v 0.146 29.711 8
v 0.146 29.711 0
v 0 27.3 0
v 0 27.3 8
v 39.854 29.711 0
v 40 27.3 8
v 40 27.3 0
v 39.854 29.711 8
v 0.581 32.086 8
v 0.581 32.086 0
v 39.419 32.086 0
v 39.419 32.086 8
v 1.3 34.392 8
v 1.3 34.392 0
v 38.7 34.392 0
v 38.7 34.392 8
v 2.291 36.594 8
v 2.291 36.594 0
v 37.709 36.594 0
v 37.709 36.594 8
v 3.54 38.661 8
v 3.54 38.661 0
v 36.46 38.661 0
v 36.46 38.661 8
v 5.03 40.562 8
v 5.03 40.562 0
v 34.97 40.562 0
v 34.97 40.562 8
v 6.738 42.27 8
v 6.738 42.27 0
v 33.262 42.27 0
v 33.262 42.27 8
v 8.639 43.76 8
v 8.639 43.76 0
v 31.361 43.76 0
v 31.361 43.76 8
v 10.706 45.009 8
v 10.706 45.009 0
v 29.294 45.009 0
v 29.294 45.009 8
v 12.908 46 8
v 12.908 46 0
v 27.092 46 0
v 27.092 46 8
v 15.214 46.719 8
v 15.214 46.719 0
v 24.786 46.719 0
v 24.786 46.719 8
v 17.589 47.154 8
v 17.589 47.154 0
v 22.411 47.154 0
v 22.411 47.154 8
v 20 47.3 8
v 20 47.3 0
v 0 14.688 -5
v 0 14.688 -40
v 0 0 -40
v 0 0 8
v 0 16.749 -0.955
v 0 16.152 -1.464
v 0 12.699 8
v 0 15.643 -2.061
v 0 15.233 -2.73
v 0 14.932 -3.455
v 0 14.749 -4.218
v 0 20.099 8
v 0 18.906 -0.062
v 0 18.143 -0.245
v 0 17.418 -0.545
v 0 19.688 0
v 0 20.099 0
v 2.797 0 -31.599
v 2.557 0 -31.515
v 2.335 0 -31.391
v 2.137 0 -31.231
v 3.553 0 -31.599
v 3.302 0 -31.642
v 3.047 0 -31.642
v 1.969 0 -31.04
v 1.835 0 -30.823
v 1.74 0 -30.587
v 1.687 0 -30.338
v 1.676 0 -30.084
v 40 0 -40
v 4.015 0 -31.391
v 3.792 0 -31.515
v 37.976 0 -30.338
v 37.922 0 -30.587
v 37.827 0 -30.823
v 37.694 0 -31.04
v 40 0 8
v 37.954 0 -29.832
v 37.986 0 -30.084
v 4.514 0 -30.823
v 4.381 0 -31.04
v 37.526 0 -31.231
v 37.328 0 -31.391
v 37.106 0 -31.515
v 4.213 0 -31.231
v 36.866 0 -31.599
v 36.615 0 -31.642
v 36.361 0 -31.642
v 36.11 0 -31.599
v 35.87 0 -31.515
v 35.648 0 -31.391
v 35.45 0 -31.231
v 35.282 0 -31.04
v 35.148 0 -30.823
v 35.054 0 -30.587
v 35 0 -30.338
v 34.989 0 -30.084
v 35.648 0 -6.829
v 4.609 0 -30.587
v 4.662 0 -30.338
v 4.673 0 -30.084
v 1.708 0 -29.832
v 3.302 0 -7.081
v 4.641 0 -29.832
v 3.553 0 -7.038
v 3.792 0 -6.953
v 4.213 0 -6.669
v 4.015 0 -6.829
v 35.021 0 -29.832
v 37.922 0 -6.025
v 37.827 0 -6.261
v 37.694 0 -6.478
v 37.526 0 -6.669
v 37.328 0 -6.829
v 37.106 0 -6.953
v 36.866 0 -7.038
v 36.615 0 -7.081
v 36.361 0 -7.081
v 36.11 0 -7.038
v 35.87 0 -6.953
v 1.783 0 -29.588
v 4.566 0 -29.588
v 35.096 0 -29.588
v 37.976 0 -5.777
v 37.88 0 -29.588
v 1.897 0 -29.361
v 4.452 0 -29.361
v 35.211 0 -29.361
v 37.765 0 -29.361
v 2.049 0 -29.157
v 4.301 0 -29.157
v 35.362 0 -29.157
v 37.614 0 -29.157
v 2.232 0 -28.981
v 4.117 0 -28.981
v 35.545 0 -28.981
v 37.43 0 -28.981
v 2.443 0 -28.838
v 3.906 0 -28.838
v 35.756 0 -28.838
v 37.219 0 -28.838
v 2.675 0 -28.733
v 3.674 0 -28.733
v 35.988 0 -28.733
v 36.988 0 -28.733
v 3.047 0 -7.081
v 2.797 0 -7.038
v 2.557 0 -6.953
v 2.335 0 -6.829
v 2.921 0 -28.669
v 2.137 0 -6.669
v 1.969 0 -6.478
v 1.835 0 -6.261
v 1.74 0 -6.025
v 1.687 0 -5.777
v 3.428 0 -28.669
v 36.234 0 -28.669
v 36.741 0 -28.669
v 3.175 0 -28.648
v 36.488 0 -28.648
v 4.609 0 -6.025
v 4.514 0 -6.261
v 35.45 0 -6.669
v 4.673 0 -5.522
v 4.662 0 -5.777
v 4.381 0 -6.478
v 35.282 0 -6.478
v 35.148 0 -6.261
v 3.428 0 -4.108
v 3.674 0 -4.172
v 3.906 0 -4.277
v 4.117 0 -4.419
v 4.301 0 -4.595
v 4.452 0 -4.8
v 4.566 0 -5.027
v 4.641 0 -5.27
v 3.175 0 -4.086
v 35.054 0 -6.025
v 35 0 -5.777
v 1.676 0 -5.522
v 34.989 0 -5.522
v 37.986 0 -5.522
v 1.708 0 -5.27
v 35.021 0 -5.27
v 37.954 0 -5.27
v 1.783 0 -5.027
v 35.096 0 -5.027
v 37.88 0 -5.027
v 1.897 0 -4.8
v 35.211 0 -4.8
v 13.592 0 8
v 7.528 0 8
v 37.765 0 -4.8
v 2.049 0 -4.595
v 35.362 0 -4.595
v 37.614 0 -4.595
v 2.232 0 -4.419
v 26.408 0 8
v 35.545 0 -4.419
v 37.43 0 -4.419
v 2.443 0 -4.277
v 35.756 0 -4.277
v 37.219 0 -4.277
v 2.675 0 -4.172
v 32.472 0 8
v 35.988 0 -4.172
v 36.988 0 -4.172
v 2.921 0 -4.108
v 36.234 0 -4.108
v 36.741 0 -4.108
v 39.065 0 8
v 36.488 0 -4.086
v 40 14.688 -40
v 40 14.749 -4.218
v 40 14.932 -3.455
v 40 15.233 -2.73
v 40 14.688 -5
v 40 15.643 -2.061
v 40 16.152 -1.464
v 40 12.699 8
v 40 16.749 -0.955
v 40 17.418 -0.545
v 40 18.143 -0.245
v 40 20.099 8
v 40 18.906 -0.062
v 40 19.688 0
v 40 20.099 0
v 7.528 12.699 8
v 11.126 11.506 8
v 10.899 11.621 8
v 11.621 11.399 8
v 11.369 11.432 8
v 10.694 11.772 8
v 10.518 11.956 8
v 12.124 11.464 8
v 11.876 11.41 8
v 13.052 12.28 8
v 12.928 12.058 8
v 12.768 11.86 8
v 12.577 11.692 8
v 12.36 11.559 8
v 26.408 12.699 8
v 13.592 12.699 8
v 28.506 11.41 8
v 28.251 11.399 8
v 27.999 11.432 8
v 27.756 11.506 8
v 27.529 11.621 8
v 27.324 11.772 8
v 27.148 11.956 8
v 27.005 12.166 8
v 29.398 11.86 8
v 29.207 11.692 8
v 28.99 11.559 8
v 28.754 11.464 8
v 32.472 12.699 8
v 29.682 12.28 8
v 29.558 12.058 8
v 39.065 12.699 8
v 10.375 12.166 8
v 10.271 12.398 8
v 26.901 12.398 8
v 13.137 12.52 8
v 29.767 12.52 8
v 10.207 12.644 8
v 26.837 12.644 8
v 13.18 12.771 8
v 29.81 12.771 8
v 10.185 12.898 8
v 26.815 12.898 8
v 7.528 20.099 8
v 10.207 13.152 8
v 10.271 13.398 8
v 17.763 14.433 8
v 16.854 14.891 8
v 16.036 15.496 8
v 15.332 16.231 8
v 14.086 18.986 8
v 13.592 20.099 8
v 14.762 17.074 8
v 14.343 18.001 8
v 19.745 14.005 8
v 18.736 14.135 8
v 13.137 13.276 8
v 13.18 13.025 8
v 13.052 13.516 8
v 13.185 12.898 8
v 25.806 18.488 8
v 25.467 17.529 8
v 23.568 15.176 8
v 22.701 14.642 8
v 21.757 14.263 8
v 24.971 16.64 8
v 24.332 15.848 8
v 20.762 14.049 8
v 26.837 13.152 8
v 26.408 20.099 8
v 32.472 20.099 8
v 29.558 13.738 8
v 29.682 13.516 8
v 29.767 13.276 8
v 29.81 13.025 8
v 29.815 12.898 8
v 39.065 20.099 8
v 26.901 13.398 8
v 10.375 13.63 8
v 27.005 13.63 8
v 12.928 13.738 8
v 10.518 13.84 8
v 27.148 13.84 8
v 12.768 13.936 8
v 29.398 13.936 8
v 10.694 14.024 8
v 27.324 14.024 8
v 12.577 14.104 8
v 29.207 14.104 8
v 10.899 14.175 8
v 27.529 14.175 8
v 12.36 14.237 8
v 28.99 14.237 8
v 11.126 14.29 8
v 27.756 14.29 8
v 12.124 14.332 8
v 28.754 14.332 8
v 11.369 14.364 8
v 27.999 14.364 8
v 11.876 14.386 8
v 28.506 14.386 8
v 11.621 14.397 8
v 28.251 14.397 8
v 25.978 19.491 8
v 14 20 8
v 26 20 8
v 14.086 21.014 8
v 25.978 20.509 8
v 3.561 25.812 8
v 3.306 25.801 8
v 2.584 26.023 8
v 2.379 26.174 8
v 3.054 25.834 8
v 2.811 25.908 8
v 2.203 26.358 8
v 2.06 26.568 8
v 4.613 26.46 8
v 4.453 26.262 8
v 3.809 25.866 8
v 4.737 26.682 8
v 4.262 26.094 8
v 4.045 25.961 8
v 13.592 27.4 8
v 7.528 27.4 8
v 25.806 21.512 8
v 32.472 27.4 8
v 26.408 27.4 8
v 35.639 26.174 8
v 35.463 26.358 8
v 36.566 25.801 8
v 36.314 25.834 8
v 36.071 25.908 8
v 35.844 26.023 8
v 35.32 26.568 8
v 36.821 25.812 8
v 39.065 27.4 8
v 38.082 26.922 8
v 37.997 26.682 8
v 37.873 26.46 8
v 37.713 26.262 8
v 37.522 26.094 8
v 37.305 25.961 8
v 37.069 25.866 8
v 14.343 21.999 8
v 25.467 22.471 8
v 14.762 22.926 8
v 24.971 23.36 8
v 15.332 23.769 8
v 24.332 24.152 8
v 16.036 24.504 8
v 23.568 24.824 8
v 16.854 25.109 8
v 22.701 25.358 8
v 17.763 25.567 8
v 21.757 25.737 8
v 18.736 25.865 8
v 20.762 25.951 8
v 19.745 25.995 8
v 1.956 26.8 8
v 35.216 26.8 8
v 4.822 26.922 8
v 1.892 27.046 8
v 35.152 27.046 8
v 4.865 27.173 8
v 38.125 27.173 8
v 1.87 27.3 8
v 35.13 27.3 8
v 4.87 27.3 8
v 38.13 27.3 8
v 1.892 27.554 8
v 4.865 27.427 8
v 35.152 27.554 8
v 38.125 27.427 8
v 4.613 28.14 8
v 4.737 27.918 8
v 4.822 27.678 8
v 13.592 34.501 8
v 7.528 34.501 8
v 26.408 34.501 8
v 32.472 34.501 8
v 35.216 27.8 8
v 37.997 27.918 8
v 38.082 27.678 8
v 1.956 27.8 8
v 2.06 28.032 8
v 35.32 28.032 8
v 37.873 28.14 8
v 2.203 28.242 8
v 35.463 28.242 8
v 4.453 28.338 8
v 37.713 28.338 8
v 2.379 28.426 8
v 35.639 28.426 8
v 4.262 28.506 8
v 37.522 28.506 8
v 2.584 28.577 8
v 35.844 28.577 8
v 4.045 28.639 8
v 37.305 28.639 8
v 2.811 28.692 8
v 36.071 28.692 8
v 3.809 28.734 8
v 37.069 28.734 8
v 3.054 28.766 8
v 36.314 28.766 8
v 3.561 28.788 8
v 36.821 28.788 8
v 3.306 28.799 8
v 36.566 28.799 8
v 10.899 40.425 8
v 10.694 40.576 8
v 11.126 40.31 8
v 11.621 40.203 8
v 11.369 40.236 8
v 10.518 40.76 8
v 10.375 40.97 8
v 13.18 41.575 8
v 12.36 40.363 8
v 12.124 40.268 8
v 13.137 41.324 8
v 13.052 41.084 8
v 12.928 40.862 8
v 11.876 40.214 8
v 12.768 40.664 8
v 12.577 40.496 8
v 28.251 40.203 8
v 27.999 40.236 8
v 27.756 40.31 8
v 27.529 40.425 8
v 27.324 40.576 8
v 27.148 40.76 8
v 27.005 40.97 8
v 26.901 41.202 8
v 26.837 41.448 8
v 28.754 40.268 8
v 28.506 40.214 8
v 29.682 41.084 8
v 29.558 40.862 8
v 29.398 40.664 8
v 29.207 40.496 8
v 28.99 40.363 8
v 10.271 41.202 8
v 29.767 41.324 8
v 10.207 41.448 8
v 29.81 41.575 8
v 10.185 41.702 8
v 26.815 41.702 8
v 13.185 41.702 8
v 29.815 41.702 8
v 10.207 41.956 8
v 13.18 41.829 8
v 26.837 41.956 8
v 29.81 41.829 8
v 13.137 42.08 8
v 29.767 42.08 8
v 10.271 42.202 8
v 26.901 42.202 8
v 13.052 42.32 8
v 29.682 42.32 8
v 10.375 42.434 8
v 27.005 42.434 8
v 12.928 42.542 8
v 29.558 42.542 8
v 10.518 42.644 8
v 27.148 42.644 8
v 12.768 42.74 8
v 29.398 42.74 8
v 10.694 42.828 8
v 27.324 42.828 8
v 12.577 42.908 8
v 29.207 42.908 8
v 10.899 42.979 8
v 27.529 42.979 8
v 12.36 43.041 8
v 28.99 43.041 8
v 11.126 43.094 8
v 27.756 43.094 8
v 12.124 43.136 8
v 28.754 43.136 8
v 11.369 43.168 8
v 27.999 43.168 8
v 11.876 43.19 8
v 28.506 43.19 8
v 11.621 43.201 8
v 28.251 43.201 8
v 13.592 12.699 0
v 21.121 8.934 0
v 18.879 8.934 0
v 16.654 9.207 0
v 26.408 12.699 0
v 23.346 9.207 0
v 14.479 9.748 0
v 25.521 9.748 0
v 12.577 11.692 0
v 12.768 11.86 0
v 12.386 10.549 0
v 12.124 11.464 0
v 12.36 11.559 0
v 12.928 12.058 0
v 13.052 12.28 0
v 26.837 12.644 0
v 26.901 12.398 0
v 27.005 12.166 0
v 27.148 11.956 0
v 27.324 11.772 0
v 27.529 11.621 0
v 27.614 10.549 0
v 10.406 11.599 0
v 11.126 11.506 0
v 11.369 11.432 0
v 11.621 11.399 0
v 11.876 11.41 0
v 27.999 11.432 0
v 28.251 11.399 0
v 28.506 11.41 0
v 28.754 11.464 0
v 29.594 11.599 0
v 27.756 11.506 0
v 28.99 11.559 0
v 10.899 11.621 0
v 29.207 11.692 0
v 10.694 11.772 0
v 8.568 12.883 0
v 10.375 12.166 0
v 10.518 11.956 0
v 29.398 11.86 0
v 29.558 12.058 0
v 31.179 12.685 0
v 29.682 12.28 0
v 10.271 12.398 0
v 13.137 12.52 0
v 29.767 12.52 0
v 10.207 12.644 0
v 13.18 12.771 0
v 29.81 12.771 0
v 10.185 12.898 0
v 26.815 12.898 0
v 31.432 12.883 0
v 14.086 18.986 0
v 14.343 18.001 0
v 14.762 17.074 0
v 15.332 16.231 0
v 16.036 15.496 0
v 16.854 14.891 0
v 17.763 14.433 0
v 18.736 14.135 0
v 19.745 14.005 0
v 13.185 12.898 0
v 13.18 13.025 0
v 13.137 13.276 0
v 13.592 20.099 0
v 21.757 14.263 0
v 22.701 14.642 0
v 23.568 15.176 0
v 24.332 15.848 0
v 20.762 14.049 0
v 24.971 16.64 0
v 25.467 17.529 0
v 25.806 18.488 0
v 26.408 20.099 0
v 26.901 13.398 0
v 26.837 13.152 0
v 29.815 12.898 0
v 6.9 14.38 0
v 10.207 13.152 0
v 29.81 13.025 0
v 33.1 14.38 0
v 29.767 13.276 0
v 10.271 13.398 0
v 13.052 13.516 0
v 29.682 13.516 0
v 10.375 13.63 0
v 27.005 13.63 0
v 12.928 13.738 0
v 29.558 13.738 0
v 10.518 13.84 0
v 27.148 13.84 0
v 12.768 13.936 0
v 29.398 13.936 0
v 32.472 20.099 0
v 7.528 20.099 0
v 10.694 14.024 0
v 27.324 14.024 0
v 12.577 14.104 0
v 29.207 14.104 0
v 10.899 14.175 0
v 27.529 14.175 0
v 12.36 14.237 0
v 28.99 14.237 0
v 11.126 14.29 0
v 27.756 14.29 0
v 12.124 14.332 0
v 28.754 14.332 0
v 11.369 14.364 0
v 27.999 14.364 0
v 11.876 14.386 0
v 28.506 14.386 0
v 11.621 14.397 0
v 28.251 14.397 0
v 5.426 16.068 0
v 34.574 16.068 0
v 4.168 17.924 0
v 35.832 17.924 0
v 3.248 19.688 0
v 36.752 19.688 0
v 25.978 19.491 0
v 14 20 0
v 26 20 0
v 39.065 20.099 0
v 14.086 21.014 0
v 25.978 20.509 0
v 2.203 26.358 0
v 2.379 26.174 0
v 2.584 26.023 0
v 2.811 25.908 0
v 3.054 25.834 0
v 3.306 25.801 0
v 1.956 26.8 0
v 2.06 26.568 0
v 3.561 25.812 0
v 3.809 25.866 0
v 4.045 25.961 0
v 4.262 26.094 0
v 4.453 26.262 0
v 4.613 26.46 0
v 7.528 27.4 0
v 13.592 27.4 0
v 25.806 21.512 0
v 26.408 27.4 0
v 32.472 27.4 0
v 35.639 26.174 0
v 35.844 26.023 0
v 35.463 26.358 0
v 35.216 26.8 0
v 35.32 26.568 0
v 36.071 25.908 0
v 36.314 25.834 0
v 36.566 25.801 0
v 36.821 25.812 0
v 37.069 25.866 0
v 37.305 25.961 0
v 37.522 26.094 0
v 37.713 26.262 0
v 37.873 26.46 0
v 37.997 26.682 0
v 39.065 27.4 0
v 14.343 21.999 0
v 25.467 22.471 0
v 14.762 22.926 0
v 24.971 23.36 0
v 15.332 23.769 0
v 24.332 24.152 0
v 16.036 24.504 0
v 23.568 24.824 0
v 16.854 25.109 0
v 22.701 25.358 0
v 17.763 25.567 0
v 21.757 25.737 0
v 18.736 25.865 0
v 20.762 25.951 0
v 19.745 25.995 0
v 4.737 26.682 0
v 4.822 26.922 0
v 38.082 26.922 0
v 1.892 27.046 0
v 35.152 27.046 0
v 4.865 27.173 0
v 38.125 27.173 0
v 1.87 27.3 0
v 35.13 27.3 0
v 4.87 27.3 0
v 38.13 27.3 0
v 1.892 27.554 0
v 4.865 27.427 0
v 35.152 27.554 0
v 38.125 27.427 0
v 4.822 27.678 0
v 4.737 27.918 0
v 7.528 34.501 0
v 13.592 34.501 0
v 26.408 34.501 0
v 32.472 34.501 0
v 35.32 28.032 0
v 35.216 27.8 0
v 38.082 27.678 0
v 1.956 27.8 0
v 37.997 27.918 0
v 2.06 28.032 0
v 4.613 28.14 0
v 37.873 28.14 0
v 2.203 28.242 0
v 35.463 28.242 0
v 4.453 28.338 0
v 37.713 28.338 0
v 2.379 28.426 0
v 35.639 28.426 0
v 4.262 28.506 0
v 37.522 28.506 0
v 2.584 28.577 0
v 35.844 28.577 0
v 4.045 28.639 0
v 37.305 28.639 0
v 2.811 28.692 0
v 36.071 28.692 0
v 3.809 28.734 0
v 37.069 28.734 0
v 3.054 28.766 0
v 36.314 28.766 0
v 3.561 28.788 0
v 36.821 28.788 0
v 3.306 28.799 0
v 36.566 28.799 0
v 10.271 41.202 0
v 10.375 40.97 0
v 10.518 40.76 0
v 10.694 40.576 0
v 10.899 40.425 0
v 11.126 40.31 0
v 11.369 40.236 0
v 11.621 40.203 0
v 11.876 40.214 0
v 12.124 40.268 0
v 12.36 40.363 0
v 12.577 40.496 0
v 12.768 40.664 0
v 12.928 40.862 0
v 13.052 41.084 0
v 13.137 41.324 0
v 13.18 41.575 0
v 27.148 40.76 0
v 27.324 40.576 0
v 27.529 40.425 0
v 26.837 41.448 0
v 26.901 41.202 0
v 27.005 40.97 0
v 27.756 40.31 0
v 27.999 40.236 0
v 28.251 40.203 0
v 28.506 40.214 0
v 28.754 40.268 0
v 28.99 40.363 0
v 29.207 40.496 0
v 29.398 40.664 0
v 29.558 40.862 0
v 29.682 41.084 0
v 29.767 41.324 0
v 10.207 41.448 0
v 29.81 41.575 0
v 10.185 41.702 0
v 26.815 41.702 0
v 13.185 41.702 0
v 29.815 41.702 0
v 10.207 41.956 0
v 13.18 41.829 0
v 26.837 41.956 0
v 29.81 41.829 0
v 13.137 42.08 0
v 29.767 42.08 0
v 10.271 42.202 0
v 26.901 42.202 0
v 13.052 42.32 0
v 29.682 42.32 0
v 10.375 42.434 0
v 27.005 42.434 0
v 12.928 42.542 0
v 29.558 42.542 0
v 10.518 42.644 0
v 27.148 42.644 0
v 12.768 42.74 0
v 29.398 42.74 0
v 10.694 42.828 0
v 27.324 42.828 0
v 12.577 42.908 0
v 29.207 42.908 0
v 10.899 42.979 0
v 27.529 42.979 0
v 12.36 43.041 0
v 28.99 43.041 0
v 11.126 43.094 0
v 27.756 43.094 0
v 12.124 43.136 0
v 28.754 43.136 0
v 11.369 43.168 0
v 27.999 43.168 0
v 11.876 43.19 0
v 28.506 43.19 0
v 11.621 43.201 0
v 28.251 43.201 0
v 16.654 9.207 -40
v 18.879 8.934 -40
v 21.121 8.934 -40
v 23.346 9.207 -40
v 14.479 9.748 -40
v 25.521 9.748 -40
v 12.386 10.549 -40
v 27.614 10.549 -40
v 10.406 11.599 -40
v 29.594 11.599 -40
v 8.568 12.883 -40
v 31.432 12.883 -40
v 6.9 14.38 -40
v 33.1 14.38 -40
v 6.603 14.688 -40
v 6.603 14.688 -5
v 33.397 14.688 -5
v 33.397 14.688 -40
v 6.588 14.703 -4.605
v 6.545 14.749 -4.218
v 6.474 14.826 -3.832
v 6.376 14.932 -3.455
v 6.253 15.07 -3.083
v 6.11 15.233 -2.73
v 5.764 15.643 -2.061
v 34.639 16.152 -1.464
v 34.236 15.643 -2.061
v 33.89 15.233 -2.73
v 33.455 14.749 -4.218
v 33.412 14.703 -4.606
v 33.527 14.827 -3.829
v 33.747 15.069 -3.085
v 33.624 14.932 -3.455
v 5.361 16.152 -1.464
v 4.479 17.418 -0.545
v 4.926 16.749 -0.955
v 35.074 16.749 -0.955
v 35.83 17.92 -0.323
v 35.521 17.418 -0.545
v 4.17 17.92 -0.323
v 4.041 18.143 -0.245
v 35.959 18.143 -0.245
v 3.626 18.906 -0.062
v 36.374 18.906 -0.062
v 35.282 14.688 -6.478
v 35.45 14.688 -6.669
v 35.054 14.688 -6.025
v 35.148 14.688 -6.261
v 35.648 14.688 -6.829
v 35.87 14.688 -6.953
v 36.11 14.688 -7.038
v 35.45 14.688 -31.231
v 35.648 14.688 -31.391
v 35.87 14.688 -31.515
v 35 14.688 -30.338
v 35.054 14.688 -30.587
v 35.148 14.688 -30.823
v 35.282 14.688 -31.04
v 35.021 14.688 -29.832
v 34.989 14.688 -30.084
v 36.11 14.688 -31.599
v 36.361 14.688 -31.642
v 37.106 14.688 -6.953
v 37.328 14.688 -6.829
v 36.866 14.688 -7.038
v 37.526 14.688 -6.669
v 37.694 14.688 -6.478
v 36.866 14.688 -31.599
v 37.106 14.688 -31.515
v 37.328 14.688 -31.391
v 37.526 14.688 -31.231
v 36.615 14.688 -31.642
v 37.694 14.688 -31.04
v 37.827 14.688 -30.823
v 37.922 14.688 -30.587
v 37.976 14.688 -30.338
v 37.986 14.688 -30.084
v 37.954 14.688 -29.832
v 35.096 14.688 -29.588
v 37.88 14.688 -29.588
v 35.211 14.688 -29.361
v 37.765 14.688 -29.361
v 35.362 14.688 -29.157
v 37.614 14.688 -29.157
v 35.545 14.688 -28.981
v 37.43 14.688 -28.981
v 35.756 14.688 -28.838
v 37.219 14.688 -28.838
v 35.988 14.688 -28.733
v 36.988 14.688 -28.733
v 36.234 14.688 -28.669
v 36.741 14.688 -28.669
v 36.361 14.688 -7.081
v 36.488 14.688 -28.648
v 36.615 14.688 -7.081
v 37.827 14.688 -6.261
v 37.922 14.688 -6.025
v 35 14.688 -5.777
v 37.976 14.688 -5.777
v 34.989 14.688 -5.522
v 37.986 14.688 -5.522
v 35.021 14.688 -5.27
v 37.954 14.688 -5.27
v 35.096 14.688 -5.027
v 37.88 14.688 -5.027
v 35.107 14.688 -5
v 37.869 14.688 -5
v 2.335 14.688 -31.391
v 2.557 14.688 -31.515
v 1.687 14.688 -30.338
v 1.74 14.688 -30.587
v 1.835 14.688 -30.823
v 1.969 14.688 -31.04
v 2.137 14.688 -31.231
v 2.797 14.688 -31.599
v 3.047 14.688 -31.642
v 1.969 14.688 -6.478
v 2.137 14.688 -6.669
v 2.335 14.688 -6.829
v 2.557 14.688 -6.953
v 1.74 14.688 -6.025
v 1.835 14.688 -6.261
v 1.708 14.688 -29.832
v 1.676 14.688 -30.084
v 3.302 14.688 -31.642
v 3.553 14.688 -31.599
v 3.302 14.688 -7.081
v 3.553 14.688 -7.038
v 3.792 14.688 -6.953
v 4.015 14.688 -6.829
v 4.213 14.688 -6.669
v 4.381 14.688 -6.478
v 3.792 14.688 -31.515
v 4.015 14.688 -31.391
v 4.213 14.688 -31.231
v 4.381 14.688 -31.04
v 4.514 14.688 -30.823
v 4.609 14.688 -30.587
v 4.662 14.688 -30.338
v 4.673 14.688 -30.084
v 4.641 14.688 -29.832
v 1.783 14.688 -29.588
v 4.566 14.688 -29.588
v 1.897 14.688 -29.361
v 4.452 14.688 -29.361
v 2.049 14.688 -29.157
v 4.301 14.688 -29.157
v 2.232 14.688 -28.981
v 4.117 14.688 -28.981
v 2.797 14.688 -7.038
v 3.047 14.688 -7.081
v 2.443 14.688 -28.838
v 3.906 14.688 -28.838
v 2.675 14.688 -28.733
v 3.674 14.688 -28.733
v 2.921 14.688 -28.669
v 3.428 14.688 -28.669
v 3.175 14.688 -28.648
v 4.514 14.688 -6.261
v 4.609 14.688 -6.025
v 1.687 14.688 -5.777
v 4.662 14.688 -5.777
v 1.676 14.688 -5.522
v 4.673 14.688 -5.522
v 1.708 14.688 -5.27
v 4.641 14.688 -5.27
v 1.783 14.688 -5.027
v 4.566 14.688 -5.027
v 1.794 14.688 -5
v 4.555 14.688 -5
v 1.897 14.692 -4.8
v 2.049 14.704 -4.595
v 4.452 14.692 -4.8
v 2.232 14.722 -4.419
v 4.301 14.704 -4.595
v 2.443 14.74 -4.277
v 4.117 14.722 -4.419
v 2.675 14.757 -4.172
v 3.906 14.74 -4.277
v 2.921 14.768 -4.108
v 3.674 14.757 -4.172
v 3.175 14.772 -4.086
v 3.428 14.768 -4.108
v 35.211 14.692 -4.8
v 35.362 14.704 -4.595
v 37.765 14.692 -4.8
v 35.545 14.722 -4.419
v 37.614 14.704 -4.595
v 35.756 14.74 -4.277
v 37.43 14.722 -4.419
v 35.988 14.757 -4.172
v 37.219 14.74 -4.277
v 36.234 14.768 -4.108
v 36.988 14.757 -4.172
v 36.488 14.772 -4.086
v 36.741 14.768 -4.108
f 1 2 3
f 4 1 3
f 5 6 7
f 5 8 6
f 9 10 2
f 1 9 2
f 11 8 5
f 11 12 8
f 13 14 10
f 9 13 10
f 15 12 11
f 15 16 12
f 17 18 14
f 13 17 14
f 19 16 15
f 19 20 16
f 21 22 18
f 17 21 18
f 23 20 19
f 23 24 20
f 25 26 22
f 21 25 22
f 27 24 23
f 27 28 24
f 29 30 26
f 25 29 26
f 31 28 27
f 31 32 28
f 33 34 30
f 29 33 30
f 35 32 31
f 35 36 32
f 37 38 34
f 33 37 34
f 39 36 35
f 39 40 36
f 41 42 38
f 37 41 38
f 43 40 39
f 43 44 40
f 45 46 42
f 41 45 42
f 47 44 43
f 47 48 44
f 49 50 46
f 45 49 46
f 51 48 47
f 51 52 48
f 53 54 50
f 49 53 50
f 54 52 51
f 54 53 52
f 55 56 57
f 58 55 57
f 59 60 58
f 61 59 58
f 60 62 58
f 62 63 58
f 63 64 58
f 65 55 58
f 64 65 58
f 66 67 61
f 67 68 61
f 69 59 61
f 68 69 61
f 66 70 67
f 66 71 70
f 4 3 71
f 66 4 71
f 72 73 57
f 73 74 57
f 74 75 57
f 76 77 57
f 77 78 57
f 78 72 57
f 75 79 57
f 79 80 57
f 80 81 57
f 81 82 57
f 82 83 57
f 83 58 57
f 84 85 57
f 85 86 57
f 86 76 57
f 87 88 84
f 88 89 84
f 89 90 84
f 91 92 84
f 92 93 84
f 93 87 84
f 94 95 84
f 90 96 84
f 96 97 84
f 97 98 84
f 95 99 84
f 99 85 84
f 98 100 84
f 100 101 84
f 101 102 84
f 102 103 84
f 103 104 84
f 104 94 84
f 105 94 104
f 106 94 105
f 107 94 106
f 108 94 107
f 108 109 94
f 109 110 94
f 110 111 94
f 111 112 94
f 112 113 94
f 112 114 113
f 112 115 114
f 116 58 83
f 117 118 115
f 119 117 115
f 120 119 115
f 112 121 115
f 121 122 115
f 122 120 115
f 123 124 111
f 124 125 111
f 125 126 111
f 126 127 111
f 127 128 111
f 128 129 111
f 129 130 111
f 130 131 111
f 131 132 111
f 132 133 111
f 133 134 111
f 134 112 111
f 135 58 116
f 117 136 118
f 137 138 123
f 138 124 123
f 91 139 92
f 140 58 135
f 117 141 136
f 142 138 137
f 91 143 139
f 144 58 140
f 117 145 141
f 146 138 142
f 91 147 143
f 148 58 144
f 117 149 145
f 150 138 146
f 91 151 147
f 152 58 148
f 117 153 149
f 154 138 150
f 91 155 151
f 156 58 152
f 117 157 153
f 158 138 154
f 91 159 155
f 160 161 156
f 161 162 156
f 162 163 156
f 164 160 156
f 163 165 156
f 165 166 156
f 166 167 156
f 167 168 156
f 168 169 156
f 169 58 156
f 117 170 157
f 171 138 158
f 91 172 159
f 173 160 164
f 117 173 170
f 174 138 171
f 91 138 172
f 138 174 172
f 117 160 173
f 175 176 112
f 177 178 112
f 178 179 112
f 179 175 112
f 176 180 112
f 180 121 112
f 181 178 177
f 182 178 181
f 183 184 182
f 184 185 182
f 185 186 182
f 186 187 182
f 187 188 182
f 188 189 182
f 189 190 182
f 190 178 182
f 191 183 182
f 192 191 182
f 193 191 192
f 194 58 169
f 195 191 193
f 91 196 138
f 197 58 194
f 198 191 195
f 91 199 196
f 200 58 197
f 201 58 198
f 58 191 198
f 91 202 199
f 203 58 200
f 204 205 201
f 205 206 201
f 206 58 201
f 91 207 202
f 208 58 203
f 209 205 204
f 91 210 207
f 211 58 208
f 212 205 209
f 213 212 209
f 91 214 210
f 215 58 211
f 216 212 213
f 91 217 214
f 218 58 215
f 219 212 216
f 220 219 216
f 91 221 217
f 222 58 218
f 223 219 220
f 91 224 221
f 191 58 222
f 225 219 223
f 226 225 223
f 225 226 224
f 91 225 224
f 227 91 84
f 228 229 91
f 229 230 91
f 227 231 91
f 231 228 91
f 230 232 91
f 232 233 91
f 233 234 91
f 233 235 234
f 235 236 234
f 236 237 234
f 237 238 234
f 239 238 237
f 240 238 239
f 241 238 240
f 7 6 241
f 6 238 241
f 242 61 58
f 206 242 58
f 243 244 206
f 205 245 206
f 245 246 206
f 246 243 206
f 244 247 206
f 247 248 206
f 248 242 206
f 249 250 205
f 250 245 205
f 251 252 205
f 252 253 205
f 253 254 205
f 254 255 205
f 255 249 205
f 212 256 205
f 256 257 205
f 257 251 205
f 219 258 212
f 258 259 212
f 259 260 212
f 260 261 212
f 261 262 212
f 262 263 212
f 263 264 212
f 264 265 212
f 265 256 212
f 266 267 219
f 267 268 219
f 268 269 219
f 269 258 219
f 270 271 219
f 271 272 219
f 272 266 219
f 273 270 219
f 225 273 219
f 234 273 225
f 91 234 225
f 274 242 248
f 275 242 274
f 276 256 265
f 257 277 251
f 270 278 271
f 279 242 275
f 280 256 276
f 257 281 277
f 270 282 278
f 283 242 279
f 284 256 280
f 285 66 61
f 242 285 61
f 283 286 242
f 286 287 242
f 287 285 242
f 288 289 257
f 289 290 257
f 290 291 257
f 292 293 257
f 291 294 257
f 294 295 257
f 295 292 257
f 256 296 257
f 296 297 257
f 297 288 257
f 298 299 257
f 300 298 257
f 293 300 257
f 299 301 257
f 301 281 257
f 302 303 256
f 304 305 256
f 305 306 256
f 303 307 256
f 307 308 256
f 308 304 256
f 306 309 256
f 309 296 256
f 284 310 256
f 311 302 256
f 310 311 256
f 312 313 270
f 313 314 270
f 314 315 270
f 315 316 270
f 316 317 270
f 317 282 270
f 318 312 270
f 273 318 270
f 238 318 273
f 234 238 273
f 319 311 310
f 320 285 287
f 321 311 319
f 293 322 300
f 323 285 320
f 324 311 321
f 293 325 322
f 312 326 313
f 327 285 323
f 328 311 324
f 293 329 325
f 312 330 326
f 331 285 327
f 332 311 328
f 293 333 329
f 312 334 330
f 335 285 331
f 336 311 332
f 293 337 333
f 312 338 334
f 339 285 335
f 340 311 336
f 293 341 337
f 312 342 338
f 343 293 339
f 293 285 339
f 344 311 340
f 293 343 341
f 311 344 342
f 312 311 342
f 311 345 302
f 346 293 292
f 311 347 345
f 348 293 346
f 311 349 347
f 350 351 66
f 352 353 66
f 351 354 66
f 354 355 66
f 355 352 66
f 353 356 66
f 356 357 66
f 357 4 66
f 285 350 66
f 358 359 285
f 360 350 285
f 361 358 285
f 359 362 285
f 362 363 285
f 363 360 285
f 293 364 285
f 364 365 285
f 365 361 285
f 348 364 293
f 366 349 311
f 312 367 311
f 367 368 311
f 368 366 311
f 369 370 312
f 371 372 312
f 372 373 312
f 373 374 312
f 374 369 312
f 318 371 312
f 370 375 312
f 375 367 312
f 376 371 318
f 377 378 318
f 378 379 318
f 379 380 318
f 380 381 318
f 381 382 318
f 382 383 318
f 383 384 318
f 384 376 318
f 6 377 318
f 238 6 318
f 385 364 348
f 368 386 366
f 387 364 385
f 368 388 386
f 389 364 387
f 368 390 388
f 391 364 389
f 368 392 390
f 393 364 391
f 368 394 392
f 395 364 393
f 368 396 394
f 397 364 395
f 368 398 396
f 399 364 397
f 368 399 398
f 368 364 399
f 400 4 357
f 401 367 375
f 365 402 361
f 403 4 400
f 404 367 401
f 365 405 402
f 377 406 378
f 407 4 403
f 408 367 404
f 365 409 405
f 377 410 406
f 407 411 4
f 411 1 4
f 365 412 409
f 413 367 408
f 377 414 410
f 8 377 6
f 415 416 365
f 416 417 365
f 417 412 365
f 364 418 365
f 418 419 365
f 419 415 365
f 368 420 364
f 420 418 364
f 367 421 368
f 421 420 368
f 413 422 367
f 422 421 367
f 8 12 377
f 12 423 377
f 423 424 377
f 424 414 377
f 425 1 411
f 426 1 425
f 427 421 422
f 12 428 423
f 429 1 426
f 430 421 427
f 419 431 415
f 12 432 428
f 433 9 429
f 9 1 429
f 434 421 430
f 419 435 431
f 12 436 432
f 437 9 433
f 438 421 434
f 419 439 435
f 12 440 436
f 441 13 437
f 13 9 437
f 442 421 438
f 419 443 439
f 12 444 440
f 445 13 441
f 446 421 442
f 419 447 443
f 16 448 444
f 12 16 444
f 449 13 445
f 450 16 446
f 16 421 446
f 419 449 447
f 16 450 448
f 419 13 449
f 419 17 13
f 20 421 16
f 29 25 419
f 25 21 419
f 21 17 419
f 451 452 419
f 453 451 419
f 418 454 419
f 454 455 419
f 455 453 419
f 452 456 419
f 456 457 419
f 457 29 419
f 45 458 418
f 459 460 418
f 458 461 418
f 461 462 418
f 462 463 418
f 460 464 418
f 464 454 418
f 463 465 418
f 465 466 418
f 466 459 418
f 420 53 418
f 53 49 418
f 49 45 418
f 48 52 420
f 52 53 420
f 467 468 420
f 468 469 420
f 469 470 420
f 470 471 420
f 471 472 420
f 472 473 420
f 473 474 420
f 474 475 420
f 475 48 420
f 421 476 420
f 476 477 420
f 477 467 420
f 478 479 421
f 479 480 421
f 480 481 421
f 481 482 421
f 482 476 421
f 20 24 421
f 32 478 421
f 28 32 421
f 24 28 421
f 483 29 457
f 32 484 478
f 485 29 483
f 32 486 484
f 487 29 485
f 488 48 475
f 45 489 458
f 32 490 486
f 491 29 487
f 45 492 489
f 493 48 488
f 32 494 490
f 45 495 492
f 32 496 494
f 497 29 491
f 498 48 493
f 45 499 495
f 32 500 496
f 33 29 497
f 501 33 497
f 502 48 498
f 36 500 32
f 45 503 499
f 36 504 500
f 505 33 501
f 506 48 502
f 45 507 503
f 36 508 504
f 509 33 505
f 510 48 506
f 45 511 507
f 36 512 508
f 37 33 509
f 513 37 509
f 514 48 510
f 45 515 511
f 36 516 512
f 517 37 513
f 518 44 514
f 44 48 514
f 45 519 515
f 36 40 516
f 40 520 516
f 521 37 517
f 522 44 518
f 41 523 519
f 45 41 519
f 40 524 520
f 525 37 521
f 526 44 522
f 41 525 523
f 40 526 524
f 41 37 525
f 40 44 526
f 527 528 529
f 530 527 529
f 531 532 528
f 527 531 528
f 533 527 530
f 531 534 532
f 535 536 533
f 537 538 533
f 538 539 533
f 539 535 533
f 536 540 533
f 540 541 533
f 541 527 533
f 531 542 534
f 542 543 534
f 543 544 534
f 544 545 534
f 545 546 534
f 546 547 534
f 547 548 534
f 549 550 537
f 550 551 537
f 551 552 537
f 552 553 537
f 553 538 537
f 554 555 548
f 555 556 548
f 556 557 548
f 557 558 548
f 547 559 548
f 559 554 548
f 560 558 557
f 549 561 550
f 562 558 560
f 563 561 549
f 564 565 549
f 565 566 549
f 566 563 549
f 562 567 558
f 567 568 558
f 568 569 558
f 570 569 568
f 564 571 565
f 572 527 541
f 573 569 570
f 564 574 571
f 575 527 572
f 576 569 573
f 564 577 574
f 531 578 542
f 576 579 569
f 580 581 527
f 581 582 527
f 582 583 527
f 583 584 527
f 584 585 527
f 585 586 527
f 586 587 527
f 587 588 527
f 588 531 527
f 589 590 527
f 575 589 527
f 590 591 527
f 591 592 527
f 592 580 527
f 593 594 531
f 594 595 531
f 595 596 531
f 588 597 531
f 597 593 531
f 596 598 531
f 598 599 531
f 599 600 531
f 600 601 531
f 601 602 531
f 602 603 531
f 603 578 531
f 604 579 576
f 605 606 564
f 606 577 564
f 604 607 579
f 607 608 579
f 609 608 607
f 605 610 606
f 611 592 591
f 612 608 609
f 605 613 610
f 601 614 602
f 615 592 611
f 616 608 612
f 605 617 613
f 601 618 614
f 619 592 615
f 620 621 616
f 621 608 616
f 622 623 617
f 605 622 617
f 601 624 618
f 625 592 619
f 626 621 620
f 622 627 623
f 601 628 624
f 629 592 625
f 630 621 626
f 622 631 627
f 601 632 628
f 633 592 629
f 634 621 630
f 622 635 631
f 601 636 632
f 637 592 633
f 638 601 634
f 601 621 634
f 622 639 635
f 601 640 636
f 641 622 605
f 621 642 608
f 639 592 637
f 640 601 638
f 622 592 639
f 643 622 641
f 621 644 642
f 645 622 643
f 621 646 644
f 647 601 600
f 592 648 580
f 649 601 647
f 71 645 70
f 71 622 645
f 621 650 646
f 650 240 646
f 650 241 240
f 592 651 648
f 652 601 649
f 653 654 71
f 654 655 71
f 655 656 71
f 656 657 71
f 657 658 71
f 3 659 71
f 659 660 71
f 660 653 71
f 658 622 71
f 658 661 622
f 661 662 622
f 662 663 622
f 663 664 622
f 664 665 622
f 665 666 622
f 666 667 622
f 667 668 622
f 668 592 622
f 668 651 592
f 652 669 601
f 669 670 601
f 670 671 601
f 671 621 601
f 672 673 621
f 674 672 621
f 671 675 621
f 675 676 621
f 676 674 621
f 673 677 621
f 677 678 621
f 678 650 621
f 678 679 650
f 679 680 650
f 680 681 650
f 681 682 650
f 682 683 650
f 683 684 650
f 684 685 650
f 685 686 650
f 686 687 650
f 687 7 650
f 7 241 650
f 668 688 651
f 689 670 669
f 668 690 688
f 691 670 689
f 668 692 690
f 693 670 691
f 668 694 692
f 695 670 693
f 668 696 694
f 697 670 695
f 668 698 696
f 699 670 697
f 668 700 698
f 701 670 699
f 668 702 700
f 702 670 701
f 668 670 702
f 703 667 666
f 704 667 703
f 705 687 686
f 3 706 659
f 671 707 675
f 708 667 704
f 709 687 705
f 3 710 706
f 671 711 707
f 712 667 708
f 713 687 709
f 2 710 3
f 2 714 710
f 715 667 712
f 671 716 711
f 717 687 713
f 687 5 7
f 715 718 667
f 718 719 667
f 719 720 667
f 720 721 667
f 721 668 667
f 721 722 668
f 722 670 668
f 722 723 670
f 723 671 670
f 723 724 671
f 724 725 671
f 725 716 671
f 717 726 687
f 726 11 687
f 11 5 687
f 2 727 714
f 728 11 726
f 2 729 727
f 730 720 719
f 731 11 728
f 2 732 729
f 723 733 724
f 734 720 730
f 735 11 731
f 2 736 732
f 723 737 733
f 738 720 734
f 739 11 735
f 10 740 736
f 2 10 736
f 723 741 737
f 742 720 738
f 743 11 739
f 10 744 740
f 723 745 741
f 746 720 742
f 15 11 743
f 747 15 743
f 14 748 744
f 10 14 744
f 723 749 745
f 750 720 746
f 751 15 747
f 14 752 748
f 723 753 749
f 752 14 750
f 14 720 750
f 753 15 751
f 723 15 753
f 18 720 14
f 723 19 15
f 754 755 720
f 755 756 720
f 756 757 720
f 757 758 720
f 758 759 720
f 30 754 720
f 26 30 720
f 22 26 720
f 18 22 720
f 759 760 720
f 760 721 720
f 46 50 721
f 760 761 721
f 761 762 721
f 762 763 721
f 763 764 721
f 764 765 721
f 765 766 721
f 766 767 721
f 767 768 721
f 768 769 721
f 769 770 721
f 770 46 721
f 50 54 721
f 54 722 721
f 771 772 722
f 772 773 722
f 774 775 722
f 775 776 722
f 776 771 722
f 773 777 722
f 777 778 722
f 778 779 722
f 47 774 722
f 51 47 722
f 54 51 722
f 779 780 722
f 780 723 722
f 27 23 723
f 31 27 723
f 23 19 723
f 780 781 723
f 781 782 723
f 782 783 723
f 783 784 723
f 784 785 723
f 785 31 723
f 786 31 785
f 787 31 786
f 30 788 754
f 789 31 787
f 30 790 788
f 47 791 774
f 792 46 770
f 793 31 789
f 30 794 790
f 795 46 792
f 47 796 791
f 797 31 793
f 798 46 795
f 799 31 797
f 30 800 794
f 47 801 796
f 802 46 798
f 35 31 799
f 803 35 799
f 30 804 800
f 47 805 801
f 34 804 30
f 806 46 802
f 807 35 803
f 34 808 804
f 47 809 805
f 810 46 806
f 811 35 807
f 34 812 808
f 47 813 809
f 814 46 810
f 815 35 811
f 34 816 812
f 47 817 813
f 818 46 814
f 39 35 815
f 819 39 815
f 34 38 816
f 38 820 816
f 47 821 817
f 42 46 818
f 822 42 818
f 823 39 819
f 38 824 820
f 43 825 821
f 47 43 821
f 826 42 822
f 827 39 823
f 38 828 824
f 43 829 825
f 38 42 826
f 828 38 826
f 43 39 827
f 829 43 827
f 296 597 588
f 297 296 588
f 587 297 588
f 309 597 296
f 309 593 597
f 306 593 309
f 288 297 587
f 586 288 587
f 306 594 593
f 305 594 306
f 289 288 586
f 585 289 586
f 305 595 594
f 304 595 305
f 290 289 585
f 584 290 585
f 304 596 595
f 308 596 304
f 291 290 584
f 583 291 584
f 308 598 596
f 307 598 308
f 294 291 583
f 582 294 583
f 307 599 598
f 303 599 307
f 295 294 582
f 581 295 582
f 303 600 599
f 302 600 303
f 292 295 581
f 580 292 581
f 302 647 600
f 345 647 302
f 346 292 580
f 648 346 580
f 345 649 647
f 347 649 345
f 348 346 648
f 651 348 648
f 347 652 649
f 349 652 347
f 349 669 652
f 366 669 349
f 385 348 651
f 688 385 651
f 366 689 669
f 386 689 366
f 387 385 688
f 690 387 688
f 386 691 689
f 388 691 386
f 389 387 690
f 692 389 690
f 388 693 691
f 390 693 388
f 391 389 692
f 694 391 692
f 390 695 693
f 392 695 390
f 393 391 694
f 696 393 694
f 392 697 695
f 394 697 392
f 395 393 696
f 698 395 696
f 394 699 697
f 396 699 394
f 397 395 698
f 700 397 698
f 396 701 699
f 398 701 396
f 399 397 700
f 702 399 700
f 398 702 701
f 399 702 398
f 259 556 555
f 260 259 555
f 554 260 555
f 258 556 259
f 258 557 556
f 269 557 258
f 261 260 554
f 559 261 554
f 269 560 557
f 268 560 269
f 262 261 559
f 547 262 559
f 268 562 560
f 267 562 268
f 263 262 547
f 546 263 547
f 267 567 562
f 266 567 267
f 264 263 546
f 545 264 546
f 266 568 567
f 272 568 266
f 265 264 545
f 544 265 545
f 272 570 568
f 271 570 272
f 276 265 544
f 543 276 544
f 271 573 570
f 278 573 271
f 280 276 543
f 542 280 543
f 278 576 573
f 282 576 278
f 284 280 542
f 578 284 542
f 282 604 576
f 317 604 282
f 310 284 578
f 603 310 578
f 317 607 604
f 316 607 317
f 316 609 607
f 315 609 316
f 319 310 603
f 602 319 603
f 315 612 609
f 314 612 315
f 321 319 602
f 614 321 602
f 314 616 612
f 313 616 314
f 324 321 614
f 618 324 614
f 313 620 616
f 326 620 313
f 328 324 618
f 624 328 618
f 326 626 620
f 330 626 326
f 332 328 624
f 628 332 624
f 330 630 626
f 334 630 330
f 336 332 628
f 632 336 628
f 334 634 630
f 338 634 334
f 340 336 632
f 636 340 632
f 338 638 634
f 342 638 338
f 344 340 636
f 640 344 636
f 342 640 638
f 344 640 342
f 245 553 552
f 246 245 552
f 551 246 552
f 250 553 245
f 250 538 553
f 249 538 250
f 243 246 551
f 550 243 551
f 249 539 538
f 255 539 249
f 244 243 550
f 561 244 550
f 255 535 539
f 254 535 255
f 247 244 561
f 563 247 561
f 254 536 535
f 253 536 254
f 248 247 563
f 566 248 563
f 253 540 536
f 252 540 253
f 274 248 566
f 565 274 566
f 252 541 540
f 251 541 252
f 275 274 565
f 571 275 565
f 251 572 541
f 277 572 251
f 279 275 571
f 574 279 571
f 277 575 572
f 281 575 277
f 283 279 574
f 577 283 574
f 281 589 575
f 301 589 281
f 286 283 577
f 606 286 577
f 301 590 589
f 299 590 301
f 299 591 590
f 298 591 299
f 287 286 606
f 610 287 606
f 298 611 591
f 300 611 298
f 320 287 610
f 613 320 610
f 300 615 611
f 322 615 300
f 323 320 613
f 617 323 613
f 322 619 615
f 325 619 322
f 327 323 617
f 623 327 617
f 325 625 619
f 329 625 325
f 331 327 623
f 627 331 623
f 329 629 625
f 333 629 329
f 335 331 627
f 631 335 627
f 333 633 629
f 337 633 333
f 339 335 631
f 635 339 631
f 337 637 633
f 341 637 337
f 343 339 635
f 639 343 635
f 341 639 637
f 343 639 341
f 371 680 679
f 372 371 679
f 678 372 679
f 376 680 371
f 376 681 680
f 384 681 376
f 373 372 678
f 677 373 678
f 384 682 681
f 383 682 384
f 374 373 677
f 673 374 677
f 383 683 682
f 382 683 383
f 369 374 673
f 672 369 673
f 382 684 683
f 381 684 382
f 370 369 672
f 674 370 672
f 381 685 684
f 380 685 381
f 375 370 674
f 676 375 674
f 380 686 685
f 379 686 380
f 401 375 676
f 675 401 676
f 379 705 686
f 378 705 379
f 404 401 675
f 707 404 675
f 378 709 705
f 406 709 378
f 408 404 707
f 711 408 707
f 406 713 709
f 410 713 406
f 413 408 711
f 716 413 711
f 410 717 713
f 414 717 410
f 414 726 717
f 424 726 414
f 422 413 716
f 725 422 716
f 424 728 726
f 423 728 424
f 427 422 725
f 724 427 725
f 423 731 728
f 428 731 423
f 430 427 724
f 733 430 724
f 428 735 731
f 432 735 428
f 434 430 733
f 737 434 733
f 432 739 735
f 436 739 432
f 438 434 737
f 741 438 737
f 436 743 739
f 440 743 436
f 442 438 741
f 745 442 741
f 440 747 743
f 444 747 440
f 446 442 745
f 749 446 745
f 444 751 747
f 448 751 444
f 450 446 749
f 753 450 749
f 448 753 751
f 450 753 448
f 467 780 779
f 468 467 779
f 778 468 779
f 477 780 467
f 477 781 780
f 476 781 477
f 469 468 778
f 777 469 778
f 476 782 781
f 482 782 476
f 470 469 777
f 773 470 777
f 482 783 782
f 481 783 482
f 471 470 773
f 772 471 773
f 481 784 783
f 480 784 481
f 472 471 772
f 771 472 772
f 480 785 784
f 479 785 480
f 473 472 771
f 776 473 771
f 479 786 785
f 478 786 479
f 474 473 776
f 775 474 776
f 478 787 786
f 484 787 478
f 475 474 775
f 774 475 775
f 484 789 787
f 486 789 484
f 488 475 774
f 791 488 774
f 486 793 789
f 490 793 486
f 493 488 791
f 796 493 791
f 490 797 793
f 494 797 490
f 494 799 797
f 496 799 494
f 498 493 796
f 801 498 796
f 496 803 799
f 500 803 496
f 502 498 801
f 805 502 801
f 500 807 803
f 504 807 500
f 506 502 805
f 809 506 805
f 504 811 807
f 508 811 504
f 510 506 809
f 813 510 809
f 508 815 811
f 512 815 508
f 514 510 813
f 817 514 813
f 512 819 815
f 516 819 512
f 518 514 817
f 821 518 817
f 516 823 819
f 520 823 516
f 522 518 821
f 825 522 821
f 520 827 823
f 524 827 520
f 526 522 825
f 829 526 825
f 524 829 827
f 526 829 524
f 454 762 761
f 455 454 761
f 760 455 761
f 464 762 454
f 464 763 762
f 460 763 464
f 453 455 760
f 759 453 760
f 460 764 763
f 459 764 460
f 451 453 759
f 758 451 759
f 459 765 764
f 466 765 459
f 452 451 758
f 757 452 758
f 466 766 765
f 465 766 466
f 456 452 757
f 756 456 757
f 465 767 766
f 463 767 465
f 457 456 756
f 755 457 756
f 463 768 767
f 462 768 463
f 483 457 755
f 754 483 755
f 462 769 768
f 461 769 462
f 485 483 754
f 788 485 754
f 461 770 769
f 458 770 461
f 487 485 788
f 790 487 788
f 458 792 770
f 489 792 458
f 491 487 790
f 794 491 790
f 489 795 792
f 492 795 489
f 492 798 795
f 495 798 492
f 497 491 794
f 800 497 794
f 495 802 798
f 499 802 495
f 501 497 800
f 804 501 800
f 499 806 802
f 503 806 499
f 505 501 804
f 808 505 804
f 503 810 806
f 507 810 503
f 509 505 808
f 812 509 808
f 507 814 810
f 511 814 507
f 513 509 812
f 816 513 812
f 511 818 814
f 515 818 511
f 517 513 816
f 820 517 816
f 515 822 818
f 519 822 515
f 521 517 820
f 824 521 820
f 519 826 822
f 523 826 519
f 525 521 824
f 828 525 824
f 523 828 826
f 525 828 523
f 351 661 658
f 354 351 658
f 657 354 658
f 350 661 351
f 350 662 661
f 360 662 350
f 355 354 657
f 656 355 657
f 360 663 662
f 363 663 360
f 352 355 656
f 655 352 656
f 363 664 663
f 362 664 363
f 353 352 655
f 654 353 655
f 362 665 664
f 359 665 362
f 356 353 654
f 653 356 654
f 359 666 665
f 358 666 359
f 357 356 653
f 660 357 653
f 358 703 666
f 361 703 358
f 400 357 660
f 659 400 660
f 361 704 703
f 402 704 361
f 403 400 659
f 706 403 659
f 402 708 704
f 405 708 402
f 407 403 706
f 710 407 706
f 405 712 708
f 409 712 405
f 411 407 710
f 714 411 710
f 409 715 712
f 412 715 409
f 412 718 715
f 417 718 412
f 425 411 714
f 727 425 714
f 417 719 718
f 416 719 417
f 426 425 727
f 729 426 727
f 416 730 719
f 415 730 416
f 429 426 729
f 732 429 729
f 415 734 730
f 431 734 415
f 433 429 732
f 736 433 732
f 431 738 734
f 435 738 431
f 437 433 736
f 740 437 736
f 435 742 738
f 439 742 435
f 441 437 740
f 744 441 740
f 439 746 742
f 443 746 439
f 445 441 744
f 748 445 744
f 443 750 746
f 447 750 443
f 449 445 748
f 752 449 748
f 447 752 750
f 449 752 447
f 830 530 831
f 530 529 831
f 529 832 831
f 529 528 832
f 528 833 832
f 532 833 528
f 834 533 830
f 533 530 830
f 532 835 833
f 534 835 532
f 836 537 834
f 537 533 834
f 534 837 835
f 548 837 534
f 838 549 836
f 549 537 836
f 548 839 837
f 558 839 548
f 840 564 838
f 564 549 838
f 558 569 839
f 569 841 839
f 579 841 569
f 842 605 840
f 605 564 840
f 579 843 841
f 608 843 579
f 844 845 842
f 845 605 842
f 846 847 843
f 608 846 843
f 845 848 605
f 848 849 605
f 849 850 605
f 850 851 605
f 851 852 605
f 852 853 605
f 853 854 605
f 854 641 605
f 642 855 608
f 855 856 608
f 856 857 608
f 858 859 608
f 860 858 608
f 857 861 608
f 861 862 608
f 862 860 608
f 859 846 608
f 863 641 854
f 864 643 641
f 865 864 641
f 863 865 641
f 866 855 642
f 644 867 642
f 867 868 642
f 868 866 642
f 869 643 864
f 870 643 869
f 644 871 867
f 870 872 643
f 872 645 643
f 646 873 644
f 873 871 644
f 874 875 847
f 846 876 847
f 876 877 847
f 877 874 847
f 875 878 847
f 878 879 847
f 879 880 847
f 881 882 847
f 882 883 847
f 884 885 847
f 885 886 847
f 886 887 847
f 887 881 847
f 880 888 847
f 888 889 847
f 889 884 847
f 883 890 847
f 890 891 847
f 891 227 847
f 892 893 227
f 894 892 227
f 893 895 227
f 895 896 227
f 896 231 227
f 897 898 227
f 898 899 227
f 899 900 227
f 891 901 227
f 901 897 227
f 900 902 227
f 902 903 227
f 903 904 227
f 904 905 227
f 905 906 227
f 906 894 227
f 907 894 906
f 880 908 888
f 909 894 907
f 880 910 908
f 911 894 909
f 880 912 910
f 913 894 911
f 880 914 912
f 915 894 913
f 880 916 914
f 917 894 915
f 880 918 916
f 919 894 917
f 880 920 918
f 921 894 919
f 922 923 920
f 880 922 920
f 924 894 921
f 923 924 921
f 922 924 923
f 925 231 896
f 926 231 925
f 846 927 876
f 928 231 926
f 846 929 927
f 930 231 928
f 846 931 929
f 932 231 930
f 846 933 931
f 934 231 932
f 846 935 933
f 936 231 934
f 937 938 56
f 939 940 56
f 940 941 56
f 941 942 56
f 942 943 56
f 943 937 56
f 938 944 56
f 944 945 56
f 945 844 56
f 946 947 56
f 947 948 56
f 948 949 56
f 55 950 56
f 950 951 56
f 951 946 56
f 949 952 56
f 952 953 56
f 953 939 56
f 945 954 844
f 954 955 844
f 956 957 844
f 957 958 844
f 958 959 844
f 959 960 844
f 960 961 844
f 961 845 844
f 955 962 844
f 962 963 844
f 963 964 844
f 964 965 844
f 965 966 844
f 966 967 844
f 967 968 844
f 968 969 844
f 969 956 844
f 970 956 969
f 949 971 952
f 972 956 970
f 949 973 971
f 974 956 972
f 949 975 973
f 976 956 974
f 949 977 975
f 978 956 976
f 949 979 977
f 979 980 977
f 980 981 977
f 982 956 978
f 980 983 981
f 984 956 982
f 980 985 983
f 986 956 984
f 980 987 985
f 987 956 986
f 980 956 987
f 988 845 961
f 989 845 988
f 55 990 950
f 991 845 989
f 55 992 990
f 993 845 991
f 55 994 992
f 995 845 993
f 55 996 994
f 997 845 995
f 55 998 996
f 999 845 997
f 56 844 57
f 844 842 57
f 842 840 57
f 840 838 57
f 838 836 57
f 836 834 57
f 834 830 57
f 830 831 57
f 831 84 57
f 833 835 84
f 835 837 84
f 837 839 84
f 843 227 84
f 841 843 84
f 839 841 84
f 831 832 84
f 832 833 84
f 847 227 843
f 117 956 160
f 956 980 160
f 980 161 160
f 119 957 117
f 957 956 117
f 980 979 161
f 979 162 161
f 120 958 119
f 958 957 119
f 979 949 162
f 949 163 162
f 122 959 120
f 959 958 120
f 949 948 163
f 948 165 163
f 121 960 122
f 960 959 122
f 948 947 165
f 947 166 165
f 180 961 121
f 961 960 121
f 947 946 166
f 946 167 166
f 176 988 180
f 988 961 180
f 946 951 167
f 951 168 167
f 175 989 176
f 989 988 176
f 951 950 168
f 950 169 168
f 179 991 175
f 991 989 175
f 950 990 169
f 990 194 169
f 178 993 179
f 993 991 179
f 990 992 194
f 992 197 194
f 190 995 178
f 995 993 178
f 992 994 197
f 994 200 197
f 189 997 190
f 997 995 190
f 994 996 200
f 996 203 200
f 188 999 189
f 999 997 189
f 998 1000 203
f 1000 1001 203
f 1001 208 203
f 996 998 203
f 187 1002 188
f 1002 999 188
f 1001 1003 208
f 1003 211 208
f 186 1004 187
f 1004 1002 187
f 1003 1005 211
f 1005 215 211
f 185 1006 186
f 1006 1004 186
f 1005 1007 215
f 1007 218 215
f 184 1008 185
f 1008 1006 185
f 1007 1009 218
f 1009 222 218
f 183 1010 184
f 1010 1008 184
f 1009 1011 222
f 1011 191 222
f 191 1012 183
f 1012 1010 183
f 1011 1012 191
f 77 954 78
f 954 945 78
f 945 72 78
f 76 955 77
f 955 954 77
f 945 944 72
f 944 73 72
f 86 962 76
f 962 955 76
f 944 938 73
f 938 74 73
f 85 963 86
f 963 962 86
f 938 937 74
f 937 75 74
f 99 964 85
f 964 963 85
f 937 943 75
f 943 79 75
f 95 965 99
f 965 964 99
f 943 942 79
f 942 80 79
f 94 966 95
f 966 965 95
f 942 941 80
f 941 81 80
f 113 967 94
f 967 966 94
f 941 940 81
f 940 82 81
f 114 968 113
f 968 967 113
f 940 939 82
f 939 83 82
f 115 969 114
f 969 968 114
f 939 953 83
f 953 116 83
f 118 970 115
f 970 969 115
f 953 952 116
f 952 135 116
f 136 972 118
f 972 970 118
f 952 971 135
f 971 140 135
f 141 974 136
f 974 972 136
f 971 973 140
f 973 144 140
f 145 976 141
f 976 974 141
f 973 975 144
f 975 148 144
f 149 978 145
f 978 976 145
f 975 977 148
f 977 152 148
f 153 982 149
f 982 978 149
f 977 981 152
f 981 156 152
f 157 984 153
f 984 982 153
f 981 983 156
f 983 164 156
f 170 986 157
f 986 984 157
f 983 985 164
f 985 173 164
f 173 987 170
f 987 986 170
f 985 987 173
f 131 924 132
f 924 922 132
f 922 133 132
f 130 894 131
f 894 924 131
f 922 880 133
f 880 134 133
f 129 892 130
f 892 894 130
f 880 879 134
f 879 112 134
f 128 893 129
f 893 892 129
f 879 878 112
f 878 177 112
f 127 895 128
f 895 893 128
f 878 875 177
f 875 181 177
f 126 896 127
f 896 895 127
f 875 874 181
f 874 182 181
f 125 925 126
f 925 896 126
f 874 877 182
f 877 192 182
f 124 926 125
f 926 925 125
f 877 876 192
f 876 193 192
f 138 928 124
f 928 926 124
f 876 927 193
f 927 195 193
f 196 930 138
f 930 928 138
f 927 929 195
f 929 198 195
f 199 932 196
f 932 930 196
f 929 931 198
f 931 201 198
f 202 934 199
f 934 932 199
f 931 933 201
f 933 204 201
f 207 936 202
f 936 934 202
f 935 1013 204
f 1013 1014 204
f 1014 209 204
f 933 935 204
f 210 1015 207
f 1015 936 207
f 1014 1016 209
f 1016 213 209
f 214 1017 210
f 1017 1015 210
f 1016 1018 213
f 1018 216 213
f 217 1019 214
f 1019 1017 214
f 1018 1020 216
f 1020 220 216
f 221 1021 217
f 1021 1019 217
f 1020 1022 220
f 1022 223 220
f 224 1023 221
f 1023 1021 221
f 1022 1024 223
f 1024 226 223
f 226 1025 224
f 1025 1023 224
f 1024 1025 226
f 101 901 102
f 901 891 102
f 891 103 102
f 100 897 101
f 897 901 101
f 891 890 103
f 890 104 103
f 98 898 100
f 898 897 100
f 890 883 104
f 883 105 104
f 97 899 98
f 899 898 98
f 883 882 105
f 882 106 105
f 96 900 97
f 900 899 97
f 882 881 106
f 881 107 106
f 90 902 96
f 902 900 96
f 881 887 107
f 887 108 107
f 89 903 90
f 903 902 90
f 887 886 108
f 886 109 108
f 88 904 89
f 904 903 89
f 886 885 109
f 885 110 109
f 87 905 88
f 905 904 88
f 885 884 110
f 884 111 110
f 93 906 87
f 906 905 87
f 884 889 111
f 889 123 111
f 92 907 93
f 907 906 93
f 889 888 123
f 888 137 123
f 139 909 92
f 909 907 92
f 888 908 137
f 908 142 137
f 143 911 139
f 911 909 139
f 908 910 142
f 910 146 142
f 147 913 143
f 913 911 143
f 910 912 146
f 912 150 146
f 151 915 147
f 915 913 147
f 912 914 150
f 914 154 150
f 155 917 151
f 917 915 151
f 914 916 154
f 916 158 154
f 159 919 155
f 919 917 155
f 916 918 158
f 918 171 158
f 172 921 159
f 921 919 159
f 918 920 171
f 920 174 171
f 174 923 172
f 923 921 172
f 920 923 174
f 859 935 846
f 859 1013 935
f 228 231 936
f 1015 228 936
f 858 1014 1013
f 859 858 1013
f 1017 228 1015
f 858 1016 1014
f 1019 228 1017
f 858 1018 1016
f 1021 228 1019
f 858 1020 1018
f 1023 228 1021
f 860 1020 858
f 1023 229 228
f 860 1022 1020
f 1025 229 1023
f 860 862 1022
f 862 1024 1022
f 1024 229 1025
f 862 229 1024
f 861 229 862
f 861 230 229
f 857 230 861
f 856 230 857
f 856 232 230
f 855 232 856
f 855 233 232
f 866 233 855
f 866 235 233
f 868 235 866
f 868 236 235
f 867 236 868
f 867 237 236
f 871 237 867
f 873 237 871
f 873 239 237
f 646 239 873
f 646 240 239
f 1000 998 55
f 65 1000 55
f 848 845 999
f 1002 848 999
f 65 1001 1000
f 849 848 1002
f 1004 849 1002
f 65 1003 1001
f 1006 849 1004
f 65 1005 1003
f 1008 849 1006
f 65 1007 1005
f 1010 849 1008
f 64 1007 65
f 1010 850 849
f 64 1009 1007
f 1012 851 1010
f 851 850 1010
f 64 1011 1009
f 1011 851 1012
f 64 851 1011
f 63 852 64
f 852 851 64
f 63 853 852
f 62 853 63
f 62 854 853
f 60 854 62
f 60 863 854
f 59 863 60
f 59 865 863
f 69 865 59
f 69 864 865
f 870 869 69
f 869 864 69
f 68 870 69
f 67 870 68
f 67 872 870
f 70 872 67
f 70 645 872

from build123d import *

# Parameters (mm, degrees)
EXTRUDE_2_DEPTH         = 8
SKETCH_1_11_OUTSIDE_W   = 54.492
SKETCH_1_11_OUTSIDE_H   = 61.792
SKETCH_1_11_OUTSIDE_R   = 6
SKETCH_1_11_OUTSIDE_R_2 = 1.5
CUT_EXTRUDE_2_DEPTH     = 63.460307396
EXTRUDE_4_DEPTH         = 40
SKETCH_9_R              = 1.5
CUT_EXTRUDE_3_DEPTH     = 66.295934524
FILLET_1_R              = 5
FILLET_2_R              = 5


with BuildPart() as part:
    # Эскиз1 → Бобышка-Вытянуть2 (new body)
    with BuildSketch(Plane.XY):
        with BuildLine():
            Line((0, 0), (40, 0))
            Line((40, 0), (40, 27.3))
            ThreePointArc((40, 27.3), (20, 47.3), (0, 27.3))
            Line((0, 27.3), (0, 0))
        make_face()
    extrude(amount=EXTRUDE_2_DEPTH)

    # Эскиз1<11> outside → Вырез-Вытянуть2 (cut, through all)
    # profile 1 of 8: a face of its own
    with BuildSketch(Plane.XY):
        with Locations((20, 23.65)):
            Rectangle(SKETCH_1_11_OUTSIDE_W, SKETCH_1_11_OUTSIDE_H)
        with BuildLine():
            Line((0, 0), (40, 0))
            Line((40, 0), (40, 27.3))
            ThreePointArc((40, 27.3), (20, 47.3), (0, 27.3))
            Line((0, 27.3), (0, 0))
        make_face(mode=Mode.SUBTRACT)
    # profile 2 of 8: a face of its own
    with BuildSketch(Plane.XY):
        with Locations((20, 20)):
            Circle(SKETCH_1_11_OUTSIDE_R)
    # profile 3 of 8: a face of its own
    with BuildSketch(Plane.XY):
        with Locations((3.37, 27.3)):
            Circle(SKETCH_1_11_OUTSIDE_R_2)
    # profile 4 of 8: a face of its own
    with BuildSketch(Plane.XY):
        with Locations((11.685, 41.702002465)):
            Circle(SKETCH_1_11_OUTSIDE_R_2)
    # profile 5 of 8: a face of its own
    with BuildSketch(Plane.XY):
        with Locations((28.315, 41.702002465)):
            Circle(SKETCH_1_11_OUTSIDE_R_2)
    # profile 6 of 8: a face of its own
    with BuildSketch(Plane.XY):
        with Locations((36.63, 27.3)):
            Circle(SKETCH_1_11_OUTSIDE_R_2)
    # profile 7 of 8: a face of its own
    with BuildSketch(Plane.XY):
        with Locations((28.315, 12.897997535)):
            Circle(SKETCH_1_11_OUTSIDE_R_2)
    # profile 8 of 8: a face of its own
    with BuildSketch(Plane.XY):
        with Locations((11.685, 12.897997535)):
            Circle(SKETCH_1_11_OUTSIDE_R_2)
    extrude(amount=CUT_EXTRUDE_2_DEPTH, mode=Mode.SUBTRACT)

    # Эскиз8 → Бобышка-Вытянуть4 (add)
    with BuildSketch(Plane(origin=(0, 0, 0), x_dir=(-1, 0, 0), z_dir=(0, 0, -1))):
        with BuildLine():
            Line((-33.397427614, 14.687746699), (-40, 14.687746699))
            Line((-40, 14.687746699), (-40, 0))
            Line((-40, 0), (0, 0))
            Line((0, 0), (0, 14.687746699))
            Line((0, 14.687746699), (-6.602572386, 14.687746699))
            ThreePointArc((-6.602572386, 14.687746699), (-20, 8.9), (-33.397427614, 14.687746699))
        make_face()
    extrude(amount=EXTRUDE_4_DEPTH)

    # Эскиз9 → Вырез-Вытянуть3 (cut, through all)
    with BuildSketch(Plane(origin=(0, 14.687746699, 0), x_dir=(1, 0, 0), z_dir=(0, 1, 0))):
        with Locations(Location((36.487813402, 5.586160045, 0), (0, 0, 270))):
            Circle(SKETCH_9_R)
        with Locations(Location((3.174622012, 5.586160045, 0), (0, 0, 270))):
            Circle(SKETCH_9_R)
        with Locations(Location((3.174622012, 30.147789022, 0), (0, 0, 270))):
            Circle(SKETCH_9_R)
        with Locations(Location((36.487813402, 30.147789022, 0), (0, 0, 270))):
            Circle(SKETCH_9_R)
    extrude(amount=-CUT_EXTRUDE_3_DEPTH, mode=Mode.SUBTRACT)

    # Скругление1
    # the kernel refuses this fillet: 5 mm, written as the material it adds along each edge
    with BuildSketch(Plane(origin=(20.897427614, 14.687746699, 0), x_dir=(0, 1, 0), z_dir=(1, 0, 0))) as fillet_1_piece_1_section:
        with BuildLine():
            CenterArc((FILLET_1_R, -FILLET_1_R), FILLET_1_R, 90, 90)
            Line((0, -FILLET_1_R), (0, 0))
            Line((0, 0), (FILLET_1_R, 0))
        make_face()
    fillet_1_piece_1 = extrude(amount=19.102572386, mode=Mode.PRIVATE)
    fillet_1_piece_1 = fillet_1_piece_1 - Plane(origin=(20, 27.3, -1.204390543), x_dir=(-0.7281210659848666, -0.6854485489583165, 0), z_dir=(0, 0, 1)) * Cylinder(18.4, 59, mode=Mode.PRIVATE)
    fillet_1_piece_1 = fillet_1_piece_1 - Plane(origin=(36.487813402, 15.674506784, -5.586160045), x_dir=(0, 0, 1), z_dir=(0, 1, 0)) * Cylinder(1.5, 59, mode=Mode.PRIVATE)
    add(fillet_1_piece_1)

    # Скругление2
    # the kernel refuses this fillet: 5 mm, written as the material it adds along each edge
    with BuildSketch(Plane(origin=(0, 14.687746699, 0), x_dir=(0, 0, -1), z_dir=(1, 0, 0))) as fillet_2_piece_1_section:
        with BuildLine():
            CenterArc((FILLET_2_R, FILLET_2_R), FILLET_2_R, 180, 90)
            Line((0, FILLET_2_R), (0, 0))
            Line((0, 0), (FILLET_2_R, 0))
        make_face()
    fillet_2_piece_1 = extrude(amount=19.102572386, mode=Mode.PRIVATE)
    fillet_2_piece_1 = fillet_2_piece_1 - Plane(origin=(20, 27.3, -1.204389903), x_dir=(-0.7281210659850873, -0.6854485489580822, 0), z_dir=(0, 0, 1)) * Cylinder(18.4, 59, mode=Mode.PRIVATE)
    fillet_2_piece_1 = fillet_2_piece_1 - Plane(origin=(3.174622012, 15.67450541, -5.586160045), x_dir=(0, 0, 1), z_dir=(0, 1, 0)) * Cylinder(1.5, 59, mode=Mode.PRIVATE)
    add(fillet_2_piece_1)


solid = part.part
